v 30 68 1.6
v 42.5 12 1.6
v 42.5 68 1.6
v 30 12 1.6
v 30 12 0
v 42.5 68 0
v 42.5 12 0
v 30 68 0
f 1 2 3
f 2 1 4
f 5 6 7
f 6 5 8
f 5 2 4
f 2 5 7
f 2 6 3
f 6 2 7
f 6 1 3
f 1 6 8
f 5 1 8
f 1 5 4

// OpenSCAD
// Stand-in for the board edge: 1.6 mm thick (board_t), spans the right-hand ledges and clip of the coupon tray.
// Same X/Y frame as the tray coupon; print flat. Real boards may differ: fit is UNKNOWN.
translate([30,12,0])cube([12.5,56,1.6]);
